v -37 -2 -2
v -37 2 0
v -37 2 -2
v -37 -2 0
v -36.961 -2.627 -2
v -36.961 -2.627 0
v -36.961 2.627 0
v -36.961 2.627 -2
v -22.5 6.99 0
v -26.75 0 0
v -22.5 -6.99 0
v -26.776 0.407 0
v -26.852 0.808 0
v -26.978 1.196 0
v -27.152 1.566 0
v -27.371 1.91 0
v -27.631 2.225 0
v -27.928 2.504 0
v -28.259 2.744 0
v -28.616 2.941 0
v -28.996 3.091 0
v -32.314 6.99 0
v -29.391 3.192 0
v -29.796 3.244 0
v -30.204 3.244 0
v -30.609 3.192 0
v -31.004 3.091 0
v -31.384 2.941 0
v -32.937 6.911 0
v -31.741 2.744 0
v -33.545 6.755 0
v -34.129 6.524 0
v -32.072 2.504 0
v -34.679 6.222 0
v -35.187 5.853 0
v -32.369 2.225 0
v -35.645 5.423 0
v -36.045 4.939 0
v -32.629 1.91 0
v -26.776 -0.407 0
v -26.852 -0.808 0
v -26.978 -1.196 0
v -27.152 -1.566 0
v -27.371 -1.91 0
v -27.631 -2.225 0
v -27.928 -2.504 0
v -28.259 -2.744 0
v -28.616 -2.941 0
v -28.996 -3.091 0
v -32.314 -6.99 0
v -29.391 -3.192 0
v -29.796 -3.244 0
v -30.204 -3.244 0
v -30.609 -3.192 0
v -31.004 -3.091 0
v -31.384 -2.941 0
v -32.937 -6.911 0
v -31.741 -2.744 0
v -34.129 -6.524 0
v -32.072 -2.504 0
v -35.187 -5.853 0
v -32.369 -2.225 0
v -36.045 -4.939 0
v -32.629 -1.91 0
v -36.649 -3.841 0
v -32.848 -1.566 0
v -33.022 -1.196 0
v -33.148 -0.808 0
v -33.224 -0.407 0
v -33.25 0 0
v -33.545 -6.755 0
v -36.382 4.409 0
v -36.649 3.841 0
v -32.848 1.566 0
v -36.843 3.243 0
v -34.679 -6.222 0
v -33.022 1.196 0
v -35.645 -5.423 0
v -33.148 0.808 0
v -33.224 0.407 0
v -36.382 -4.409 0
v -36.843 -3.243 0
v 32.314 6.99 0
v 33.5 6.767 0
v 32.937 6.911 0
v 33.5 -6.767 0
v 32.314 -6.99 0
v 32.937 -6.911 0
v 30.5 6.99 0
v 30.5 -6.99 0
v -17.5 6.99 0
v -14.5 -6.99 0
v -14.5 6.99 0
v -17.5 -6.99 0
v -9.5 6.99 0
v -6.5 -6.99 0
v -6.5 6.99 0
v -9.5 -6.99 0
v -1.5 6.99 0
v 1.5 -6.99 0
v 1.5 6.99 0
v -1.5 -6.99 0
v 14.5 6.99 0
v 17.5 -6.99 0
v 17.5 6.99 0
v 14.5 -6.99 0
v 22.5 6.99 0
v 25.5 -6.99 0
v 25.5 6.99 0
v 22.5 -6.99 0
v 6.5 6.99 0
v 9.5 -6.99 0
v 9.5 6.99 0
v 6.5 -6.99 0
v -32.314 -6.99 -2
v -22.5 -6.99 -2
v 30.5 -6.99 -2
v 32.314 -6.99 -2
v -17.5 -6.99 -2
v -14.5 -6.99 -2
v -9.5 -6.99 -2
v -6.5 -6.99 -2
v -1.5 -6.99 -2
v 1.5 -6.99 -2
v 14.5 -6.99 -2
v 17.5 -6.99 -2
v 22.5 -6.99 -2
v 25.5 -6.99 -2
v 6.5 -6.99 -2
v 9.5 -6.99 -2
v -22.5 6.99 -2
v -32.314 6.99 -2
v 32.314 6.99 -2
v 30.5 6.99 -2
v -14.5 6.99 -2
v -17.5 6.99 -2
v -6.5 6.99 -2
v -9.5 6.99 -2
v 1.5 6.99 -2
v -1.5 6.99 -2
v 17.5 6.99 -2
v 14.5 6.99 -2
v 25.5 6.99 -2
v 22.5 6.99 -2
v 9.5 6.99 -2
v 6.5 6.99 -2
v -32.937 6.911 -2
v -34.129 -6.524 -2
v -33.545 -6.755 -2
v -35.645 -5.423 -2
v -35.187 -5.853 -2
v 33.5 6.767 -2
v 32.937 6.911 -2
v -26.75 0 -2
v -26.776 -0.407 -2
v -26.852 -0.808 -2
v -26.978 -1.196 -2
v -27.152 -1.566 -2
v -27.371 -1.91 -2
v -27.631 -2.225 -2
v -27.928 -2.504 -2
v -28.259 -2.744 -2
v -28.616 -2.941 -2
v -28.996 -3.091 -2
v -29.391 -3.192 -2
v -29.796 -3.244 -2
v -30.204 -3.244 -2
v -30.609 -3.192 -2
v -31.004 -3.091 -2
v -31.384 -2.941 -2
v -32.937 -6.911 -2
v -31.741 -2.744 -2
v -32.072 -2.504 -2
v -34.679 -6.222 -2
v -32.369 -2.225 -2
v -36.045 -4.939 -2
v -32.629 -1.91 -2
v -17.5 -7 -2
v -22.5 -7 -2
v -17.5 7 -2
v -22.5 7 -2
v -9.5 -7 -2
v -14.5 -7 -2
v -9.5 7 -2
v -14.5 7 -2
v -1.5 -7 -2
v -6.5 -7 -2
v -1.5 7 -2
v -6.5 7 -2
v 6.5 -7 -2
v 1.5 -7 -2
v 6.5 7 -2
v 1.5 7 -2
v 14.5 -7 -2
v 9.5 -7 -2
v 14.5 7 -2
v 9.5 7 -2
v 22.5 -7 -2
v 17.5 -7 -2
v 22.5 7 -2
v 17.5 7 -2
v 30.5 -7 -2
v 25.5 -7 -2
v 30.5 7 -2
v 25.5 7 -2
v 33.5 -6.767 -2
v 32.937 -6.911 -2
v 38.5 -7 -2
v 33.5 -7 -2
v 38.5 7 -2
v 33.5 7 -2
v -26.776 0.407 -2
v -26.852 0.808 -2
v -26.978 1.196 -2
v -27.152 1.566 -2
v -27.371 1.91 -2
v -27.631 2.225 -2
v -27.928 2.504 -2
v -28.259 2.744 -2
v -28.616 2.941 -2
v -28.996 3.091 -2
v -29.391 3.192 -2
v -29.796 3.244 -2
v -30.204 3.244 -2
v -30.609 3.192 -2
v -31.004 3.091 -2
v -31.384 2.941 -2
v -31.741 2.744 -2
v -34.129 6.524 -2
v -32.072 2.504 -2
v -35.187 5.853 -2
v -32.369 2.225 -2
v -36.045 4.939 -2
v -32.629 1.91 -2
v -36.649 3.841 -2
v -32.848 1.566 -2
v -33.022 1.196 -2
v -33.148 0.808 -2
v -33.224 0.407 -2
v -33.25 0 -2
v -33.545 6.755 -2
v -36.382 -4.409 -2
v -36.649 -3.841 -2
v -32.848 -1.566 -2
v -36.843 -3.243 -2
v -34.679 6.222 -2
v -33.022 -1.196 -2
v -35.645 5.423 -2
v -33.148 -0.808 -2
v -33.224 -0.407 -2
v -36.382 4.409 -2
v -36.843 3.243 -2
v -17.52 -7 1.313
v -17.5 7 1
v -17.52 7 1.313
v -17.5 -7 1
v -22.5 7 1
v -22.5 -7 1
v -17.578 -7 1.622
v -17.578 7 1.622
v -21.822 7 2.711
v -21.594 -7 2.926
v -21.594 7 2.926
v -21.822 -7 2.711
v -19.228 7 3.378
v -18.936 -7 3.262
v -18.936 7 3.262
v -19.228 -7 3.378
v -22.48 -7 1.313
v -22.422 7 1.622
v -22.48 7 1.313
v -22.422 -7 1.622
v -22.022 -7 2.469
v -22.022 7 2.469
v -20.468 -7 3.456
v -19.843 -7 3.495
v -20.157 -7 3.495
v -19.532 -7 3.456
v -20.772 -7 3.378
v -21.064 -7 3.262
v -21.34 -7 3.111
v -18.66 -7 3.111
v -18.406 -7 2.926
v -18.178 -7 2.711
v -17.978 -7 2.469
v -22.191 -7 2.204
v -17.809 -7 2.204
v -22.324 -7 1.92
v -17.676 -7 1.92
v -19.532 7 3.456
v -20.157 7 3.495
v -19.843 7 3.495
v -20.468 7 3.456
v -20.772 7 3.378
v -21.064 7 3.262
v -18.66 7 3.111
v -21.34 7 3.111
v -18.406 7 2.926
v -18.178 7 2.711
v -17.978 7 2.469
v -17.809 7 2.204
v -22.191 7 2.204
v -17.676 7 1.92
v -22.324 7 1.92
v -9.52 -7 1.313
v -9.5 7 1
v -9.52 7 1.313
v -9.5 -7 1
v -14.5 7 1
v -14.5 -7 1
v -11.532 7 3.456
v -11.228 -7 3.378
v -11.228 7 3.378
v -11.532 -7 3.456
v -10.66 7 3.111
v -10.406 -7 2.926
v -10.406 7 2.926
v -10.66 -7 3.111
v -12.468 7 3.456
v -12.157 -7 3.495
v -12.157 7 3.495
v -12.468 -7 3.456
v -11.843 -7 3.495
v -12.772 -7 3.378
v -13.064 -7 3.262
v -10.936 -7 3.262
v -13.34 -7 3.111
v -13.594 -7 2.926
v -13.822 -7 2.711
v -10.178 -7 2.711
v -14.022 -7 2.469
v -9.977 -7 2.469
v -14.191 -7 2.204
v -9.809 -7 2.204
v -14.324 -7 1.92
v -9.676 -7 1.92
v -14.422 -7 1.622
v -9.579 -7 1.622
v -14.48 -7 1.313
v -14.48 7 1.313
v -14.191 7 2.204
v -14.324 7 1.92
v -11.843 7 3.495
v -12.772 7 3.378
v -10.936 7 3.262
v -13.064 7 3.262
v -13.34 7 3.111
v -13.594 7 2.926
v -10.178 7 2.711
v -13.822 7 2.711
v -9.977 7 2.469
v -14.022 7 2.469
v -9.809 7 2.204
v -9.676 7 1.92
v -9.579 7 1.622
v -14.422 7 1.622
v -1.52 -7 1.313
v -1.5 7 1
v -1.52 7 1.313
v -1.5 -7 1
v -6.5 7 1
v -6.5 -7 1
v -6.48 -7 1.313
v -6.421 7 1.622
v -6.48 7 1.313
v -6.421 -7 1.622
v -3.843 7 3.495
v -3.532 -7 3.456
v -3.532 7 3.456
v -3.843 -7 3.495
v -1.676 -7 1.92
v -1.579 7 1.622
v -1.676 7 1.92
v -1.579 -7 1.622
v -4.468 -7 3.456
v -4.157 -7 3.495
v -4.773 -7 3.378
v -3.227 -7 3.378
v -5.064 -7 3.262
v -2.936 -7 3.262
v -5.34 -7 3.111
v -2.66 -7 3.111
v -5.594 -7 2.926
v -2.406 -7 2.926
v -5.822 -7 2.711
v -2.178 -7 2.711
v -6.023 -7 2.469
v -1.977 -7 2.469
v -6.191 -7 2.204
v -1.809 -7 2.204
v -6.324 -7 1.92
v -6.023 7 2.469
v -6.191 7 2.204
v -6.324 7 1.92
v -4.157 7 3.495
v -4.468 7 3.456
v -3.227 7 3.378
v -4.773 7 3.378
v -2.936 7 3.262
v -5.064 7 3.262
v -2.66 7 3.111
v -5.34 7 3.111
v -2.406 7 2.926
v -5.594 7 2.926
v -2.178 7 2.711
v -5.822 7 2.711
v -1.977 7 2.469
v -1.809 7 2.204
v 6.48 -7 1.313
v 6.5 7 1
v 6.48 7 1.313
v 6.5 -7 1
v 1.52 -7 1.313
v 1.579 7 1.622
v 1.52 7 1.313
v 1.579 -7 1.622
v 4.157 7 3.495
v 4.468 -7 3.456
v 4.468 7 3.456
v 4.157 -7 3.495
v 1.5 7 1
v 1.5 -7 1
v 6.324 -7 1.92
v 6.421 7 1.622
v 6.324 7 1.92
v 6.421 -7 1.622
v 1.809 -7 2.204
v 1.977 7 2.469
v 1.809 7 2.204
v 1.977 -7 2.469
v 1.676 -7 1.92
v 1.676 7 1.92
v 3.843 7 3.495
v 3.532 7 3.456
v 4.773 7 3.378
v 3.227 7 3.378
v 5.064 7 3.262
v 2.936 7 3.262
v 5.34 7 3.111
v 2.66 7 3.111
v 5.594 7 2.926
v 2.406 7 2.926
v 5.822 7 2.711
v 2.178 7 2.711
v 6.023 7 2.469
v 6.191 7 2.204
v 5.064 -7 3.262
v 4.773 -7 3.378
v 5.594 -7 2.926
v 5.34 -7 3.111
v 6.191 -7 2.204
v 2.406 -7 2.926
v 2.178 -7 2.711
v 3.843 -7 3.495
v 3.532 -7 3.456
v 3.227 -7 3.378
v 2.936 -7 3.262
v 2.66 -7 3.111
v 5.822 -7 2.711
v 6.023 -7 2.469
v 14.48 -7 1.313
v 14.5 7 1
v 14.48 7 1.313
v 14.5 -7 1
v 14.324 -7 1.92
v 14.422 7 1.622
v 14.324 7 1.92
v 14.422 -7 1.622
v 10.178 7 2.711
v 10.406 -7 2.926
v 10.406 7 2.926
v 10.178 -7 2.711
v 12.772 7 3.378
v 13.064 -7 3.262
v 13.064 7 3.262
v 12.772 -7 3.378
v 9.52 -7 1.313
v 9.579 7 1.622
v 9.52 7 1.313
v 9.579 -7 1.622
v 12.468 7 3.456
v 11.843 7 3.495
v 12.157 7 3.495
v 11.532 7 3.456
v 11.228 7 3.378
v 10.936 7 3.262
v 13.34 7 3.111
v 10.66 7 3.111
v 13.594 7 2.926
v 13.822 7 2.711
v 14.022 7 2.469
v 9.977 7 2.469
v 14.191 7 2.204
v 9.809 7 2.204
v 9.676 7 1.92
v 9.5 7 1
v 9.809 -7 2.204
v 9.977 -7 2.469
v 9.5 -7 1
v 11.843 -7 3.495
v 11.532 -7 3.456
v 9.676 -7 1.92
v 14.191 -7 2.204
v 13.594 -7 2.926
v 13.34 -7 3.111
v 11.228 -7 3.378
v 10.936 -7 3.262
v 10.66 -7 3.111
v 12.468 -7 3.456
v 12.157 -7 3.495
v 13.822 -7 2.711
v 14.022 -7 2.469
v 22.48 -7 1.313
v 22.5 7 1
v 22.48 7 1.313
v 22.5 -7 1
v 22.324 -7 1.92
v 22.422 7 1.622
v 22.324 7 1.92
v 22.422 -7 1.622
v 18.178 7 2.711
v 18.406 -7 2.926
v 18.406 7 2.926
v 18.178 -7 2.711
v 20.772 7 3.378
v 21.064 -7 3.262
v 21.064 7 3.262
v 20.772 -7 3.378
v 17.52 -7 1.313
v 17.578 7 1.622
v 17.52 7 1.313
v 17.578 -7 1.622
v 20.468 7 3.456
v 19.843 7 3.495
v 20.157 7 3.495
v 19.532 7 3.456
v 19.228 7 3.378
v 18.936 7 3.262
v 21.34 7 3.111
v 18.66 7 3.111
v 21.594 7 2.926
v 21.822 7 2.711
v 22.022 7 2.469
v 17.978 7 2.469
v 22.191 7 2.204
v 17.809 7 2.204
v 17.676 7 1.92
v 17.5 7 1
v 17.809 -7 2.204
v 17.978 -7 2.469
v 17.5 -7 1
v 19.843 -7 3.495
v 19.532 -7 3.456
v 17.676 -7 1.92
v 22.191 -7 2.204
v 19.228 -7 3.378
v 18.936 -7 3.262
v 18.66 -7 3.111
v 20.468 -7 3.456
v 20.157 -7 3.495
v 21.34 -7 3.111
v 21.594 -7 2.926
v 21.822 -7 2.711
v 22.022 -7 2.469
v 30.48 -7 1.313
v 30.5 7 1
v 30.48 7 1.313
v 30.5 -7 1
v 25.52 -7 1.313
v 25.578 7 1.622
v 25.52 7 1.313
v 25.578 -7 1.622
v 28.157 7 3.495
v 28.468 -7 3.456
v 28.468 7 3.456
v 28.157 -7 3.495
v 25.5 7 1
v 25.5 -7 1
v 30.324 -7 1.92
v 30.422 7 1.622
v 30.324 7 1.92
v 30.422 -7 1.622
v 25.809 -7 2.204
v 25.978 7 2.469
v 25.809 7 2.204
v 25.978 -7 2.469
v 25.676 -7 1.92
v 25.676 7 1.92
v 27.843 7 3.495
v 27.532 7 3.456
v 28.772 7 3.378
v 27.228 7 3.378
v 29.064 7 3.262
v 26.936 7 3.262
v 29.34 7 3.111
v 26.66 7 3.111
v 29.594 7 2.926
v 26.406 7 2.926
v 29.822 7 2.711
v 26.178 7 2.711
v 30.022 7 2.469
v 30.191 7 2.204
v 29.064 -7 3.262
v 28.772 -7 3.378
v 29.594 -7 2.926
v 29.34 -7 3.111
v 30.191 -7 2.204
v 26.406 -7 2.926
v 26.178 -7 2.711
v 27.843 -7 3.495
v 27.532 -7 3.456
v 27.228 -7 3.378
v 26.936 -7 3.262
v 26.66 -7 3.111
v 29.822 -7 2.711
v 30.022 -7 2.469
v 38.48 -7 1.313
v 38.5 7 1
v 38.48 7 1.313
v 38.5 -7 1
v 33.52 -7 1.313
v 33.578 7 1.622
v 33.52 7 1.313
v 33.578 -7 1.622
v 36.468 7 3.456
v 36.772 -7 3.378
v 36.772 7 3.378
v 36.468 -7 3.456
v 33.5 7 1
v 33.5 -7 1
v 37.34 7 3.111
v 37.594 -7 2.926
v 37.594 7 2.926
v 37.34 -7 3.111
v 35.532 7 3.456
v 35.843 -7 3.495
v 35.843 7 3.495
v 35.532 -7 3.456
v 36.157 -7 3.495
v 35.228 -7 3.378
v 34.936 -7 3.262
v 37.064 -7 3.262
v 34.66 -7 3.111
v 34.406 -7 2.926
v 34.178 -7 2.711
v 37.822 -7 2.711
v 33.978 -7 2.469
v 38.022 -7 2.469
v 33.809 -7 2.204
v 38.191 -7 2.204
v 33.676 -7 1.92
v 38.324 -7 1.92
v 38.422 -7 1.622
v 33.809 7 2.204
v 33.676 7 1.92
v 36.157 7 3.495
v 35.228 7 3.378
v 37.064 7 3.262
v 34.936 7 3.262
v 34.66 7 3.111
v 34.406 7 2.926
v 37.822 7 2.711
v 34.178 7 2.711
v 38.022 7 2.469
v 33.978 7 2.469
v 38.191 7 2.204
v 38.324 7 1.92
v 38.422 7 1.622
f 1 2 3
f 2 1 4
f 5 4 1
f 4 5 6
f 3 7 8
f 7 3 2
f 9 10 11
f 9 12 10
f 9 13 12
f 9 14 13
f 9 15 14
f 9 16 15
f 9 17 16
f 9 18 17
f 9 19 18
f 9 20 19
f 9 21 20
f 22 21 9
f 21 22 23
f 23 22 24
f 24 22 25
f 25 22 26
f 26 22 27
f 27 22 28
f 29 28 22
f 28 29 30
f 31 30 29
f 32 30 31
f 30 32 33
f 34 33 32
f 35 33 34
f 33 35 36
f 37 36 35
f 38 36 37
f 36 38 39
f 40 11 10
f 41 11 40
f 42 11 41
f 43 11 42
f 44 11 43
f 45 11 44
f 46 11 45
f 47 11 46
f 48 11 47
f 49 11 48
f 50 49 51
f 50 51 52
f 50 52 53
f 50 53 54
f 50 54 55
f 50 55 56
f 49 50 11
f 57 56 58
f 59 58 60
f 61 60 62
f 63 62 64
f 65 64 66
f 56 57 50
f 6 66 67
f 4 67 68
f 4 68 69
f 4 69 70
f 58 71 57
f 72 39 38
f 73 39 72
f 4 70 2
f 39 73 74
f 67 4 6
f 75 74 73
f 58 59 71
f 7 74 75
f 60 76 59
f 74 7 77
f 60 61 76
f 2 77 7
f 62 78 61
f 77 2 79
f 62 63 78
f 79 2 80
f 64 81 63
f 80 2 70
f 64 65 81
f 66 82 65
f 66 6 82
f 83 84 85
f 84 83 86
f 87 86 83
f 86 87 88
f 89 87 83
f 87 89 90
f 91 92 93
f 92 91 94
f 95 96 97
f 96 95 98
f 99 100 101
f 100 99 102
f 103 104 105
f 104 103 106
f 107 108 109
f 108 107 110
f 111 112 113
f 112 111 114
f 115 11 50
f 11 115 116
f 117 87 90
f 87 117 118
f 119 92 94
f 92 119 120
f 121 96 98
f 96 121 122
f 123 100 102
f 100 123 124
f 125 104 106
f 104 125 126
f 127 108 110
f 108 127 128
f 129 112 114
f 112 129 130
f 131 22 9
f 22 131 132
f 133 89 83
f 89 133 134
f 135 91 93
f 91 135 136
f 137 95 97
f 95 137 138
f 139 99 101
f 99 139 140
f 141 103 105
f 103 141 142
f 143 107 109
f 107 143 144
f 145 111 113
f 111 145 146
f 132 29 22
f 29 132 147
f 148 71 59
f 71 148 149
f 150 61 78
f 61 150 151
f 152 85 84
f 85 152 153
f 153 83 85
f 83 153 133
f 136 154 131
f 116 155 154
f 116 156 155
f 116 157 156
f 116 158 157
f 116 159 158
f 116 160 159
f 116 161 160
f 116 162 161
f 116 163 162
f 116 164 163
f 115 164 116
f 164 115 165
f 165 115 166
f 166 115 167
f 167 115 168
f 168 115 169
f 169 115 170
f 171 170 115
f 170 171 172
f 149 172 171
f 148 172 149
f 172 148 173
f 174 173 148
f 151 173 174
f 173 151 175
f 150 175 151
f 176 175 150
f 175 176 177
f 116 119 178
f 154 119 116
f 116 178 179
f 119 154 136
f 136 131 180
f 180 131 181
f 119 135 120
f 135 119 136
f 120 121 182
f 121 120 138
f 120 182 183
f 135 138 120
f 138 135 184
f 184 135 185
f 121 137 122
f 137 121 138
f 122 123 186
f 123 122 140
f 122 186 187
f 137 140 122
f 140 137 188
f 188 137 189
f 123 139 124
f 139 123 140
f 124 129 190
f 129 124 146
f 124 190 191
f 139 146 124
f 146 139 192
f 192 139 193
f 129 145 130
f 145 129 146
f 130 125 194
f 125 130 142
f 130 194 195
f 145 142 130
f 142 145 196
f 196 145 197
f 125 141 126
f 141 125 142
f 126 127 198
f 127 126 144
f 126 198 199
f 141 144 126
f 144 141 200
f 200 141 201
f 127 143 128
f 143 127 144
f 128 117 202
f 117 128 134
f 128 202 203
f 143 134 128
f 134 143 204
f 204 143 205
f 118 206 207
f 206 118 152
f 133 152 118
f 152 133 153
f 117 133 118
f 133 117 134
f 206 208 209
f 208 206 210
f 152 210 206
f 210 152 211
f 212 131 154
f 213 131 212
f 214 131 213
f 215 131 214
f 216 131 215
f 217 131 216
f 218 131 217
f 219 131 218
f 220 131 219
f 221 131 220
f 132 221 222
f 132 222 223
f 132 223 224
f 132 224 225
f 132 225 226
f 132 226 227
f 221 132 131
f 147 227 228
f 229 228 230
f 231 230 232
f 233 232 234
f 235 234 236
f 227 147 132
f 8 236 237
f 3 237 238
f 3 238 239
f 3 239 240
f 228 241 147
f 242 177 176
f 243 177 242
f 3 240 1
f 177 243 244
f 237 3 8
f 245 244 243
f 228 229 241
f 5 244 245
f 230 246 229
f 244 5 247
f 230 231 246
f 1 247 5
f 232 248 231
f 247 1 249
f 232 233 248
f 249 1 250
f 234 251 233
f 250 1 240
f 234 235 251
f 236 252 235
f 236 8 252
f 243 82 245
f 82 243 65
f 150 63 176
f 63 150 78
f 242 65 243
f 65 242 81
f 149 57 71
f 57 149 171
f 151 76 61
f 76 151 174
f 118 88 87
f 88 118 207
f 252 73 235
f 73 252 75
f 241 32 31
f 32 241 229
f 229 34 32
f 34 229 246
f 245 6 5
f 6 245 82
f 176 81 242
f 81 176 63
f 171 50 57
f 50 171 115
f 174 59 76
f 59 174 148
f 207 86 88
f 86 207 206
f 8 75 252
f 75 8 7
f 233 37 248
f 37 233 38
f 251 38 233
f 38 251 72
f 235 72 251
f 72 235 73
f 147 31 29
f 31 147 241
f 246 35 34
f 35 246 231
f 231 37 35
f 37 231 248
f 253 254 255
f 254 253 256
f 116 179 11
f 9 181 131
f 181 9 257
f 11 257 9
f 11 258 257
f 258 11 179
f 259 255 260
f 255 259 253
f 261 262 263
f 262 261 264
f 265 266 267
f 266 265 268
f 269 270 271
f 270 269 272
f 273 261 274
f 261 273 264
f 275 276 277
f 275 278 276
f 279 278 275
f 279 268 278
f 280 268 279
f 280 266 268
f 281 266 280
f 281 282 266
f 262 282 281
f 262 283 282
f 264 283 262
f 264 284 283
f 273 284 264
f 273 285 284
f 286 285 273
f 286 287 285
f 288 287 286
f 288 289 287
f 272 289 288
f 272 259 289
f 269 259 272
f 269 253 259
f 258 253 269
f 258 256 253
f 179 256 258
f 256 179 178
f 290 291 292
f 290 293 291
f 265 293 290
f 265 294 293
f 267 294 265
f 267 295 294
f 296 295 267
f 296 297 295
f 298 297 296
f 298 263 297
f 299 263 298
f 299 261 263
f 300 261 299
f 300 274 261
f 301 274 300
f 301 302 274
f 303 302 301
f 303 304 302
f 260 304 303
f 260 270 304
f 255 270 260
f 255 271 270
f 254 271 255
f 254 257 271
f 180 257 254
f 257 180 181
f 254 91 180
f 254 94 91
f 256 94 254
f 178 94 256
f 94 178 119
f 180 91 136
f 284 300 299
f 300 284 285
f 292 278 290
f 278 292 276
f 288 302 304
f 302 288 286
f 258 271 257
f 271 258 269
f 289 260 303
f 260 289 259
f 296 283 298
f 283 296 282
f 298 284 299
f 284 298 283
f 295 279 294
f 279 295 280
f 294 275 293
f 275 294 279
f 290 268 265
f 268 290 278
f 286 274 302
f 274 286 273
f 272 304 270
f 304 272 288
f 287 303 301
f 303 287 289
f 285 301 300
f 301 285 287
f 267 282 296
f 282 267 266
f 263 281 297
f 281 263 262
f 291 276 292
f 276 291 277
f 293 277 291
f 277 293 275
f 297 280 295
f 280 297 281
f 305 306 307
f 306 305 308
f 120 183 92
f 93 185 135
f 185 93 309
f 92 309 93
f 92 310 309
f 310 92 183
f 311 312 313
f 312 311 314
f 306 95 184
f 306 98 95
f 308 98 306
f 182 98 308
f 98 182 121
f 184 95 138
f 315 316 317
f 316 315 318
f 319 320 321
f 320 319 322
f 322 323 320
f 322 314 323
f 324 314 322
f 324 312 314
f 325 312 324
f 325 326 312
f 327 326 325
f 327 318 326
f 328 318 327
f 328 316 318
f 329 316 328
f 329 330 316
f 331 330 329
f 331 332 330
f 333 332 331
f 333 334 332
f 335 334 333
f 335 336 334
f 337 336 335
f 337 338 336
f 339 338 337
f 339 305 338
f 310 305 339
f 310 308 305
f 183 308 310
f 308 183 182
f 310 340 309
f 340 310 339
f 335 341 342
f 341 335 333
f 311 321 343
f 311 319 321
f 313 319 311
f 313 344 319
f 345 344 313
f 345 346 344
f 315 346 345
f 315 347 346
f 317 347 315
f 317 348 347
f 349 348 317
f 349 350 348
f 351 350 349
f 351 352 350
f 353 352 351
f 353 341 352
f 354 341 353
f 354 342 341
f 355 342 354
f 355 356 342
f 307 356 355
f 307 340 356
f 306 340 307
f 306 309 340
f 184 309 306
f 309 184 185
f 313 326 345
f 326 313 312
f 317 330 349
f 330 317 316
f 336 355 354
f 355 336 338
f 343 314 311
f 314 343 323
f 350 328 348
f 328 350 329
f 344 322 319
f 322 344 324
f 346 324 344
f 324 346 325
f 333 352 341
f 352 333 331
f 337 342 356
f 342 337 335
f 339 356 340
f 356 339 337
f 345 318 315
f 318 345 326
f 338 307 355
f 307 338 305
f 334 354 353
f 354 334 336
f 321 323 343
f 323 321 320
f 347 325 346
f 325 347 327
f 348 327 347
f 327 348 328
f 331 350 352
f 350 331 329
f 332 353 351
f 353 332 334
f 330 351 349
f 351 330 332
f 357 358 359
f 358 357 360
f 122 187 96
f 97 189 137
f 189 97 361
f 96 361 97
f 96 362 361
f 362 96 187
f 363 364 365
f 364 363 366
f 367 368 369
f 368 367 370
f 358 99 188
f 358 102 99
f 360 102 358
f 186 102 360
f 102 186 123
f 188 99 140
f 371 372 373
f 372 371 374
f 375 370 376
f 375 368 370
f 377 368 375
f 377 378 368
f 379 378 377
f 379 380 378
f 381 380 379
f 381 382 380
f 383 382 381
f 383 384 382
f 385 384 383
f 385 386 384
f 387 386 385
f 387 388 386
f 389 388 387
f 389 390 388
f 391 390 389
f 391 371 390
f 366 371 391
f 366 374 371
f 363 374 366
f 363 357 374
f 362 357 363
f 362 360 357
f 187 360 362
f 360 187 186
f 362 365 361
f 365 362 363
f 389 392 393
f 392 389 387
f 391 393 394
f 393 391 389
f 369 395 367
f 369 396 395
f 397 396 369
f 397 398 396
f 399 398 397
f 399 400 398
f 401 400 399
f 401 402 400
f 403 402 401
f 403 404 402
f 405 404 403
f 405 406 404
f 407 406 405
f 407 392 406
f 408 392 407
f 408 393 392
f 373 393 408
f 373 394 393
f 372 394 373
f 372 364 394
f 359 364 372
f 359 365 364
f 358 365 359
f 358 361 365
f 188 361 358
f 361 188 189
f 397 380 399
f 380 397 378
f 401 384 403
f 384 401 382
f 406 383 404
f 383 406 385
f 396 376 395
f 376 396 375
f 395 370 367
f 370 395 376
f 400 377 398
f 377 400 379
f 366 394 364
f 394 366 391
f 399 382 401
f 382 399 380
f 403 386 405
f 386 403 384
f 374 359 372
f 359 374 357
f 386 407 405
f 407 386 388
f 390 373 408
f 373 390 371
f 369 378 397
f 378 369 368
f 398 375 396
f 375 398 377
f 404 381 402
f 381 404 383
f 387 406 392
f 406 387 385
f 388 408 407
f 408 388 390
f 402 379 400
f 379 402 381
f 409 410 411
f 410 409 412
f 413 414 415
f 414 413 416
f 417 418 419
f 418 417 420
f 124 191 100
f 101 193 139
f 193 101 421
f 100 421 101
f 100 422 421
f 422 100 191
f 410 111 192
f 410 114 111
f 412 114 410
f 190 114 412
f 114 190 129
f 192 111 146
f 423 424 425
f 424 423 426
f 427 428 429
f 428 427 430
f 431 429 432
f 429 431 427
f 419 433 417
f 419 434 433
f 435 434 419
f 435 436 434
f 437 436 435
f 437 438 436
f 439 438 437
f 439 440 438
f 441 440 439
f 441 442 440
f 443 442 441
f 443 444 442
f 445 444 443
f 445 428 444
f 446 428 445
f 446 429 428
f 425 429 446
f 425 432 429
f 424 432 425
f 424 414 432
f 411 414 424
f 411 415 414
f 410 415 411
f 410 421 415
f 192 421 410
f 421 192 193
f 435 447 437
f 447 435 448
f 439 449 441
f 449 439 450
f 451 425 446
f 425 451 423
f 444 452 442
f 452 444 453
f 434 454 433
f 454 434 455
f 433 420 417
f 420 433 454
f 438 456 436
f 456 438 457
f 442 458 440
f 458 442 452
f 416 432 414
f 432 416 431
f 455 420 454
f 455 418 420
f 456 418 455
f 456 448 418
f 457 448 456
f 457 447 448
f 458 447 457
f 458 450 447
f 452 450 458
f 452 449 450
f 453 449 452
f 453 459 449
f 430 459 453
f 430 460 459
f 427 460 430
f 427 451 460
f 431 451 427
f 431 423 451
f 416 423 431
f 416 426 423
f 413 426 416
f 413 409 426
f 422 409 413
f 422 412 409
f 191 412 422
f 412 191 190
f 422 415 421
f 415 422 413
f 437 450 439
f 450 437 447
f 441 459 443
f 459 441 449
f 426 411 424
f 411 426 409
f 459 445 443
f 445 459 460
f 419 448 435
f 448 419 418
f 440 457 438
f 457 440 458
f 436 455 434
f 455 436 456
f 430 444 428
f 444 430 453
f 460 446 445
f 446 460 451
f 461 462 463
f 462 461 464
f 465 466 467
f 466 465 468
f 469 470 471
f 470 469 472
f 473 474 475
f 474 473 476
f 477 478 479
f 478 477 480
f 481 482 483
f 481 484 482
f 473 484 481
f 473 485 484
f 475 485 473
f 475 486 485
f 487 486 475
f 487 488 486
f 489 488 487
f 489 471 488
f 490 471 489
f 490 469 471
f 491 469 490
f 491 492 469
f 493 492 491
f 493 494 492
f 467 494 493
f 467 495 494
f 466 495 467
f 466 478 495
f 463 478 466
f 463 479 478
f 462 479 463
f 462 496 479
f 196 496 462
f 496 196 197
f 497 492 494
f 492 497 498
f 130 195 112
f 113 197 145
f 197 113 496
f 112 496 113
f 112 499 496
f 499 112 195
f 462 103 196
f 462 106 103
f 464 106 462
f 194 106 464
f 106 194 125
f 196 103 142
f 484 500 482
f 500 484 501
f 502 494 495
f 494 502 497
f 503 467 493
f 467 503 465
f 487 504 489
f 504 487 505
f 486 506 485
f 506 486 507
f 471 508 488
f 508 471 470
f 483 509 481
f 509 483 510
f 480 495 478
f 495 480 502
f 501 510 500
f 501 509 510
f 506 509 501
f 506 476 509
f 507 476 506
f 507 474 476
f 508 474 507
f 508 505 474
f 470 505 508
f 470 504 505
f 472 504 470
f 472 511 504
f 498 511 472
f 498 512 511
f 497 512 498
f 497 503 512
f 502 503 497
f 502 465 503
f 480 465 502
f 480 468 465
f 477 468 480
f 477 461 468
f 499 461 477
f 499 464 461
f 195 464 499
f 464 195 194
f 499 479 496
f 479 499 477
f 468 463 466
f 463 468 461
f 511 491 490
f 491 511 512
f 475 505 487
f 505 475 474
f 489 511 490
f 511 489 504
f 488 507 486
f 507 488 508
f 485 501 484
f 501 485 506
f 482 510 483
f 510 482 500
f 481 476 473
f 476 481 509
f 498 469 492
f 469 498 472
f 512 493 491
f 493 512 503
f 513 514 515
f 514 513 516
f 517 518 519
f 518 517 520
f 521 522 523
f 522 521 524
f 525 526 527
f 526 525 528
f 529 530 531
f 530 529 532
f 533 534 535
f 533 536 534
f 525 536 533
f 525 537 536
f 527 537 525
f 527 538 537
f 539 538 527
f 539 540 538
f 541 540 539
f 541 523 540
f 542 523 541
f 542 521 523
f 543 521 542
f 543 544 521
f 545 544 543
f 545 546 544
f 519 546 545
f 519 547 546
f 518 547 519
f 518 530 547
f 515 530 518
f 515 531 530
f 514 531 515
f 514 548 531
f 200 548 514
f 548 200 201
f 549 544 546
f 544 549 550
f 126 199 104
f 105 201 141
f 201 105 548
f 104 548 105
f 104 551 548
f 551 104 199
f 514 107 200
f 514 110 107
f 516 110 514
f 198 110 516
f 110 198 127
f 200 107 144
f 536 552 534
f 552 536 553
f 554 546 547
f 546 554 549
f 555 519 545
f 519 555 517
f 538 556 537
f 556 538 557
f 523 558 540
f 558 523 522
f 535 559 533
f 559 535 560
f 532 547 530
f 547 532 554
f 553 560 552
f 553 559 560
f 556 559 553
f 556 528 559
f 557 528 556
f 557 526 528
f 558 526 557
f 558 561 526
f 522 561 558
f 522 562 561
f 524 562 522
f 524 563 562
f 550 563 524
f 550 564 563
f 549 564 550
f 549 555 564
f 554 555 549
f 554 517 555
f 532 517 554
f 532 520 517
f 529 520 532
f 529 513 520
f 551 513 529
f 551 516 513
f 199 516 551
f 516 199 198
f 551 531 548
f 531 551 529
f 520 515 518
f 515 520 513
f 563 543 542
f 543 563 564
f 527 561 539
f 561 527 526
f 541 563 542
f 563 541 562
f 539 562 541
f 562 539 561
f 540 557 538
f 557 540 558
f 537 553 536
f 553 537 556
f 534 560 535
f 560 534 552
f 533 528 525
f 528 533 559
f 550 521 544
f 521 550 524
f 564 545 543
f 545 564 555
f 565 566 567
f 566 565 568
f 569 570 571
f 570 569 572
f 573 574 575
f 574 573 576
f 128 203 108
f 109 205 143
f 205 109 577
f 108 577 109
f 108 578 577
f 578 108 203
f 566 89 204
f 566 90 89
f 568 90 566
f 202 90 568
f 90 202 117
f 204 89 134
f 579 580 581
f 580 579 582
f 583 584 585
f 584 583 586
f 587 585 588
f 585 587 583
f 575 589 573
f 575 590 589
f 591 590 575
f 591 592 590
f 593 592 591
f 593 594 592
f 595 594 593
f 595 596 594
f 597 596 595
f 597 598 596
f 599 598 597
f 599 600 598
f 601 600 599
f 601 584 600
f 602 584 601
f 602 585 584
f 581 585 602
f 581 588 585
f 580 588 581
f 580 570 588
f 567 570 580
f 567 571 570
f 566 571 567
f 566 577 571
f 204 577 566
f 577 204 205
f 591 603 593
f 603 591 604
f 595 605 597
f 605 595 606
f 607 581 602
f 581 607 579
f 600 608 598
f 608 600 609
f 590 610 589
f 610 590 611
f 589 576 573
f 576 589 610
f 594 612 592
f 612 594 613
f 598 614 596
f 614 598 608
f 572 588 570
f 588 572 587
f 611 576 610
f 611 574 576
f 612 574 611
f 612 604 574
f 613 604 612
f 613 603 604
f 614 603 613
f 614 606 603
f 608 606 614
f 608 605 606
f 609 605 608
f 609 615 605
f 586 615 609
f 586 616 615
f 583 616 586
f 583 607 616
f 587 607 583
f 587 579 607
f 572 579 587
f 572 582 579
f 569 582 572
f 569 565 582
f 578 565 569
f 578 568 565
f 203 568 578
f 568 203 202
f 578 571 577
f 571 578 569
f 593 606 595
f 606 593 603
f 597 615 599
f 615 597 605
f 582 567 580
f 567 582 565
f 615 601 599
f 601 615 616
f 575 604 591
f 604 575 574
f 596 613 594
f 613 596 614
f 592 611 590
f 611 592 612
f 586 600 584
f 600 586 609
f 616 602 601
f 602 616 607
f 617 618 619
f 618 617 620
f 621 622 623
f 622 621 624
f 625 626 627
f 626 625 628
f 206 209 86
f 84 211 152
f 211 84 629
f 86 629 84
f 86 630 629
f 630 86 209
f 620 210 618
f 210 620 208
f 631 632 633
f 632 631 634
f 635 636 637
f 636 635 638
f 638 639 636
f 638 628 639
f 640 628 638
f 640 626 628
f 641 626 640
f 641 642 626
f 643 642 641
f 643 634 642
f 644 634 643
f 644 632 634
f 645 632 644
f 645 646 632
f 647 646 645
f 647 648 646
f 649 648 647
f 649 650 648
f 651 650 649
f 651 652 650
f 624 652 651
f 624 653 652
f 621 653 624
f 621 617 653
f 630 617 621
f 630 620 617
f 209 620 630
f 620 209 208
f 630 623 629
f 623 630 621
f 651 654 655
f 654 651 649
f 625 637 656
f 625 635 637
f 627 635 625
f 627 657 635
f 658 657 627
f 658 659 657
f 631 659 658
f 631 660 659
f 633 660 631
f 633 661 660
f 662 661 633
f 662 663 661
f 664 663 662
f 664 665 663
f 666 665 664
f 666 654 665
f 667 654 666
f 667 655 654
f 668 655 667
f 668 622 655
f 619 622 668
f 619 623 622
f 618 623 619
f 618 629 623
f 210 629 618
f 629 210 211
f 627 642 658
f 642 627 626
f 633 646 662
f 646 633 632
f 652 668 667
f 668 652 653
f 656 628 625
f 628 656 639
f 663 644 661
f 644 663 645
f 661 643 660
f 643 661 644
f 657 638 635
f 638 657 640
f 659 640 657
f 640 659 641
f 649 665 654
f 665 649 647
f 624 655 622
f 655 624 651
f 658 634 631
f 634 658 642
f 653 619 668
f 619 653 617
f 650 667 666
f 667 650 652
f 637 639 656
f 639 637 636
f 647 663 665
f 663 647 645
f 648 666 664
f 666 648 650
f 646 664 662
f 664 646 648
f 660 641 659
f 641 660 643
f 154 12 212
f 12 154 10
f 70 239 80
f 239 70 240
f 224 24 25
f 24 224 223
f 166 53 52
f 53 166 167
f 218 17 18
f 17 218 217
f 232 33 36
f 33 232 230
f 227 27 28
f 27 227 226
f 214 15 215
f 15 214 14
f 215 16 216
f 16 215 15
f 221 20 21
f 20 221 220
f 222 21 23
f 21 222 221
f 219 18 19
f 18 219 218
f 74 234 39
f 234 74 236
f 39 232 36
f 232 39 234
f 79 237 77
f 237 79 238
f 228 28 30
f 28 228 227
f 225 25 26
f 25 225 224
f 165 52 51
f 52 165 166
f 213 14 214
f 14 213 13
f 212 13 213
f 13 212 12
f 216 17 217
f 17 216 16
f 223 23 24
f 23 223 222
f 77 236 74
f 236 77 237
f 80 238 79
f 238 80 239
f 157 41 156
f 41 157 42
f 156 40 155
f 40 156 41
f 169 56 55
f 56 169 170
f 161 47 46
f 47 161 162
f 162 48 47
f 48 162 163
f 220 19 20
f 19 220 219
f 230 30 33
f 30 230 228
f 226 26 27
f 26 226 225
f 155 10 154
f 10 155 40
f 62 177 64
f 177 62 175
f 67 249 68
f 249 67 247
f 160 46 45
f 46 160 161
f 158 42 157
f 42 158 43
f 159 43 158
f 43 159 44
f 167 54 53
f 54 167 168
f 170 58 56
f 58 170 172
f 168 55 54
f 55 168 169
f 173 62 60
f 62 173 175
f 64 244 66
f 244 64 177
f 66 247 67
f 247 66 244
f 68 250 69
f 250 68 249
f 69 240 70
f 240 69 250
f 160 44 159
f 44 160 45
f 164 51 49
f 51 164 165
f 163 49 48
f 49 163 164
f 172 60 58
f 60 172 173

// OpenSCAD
$fn = 50;


difference() {
	union() {
		translate(v = [0, 0, -2]) {
			hull() {
				translate(v = [-32.0000000000, 2.0000000000, 0]) {
					cylinder(h = 2, r = 5);
				}
				translate(v = [32.0000000000, 2.0000000000, 0]) {
					cylinder(h = 2, r = 5);
				}
				translate(v = [-32.0000000000, -2.0000000000, 0]) {
					cylinder(h = 2, r = 5);
				}
				translate(v = [32.0000000000, -2.0000000000, 0]) {
					cylinder(h = 2, r = 5);
				}
			}
		}
		translate(v = [-20.0000000000, 7.0000000000, -1.5000000000]) {
			rotate(a = [90, 0, 0]) {
				hull() {
					translate(v = [-0.0000000000, 2.5000000000, 0]) {
						cylinder(h = 14, r = 2.5000000000);
					}
					translate(v = [0.0000000000, 2.5000000000, 0]) {
						cylinder(h = 14, r = 2.5000000000);
					}
					translate(v = [-0.0000000000, -2.5000000000, 0]) {
						cylinder(h = 14, r = 2.5000000000);
					}
					translate(v = [0.0000000000, -2.5000000000, 0]) {
						cylinder(h = 14, r = 2.5000000000);
					}
				}
			}
		}
		translate(v = [-12.0000000000, 7.0000000000, -1.5000000000]) {
			rotate(a = [90, 0, 0]) {
				hull() {
					translate(v = [-0.0000000000, 2.5000000000, 0]) {
						cylinder(h = 14, r = 2.5000000000);
					}
					translate(v = [0.0000000000, 2.5000000000, 0]) {
						cylinder(h = 14, r = 2.5000000000);
					}
					translate(v = [-0.0000000000, -2.5000000000, 0]) {
						cylinder(h = 14, r = 2.5000000000);
					}
					translate(v = [0.0000000000, -2.5000000000, 0]) {
						cylinder(h = 14, r = 2.5000000000);
					}
				}
			}
		}
		translate(v = [-4.0000000000, 7.0000000000, -1.5000000000]) {
			rotate(a = [90, 0, 0]) {
				hull() {
					translate(v = [-0.0000000000, 2.5000000000, 0]) {
						cylinder(h = 14, r = 2.5000000000);
					}
					translate(v = [0.0000000000, 2.5000000000, 0]) {
						cylinder(h = 14, r = 2.5000000000);
					}
					translate(v = [-0.0000000000, -2.5000000000, 0]) {
						cylinder(h = 14, r = 2.5000000000);
					}
					translate(v = [0.0000000000, -2.5000000000, 0]) {
						cylinder(h = 14, r = 2.5000000000);
					}
				}
			}
		}
		translate(v = [4.0000000000, 7.0000000000, -1.5000000000]) {
			rotate(a = [90, 0, 0]) {
				hull() {
					translate(v = [-0.0000000000, 2.5000000000, 0]) {
						cylinder(h = 14, r = 2.5000000000);
					}
					translate(v = [0.0000000000, 2.5000000000, 0]) {
						cylinder(h = 14, r = 2.5000000000);
					}
					translate(v = [-0.0000000000, -2.5000000000, 0]) {
						cylinder(h = 14, r = 2.5000000000);
					}
					translate(v = [0.0000000000, -2.5000000000, 0]) {
						cylinder(h = 14, r = 2.5000000000);
					}
				}
			}
		}
		translate(v = [12.0000000000, 7.0000000000, -1.5000000000]) {
			rotate(a = [90, 0, 0]) {
				hull() {
					translate(v = [-0.0000000000, 2.5000000000, 0]) {
						cylinder(h = 14, r = 2.5000000000);
					}
					translate(v = [0.0000000000, 2.5000000000, 0]) {
						cylinder(h = 14, r = 2.5000000000);
					}
					translate(v = [-0.0000000000, -2.5000000000, 0]) {
						cylinder(h = 14, r = 2.5000000000);
					}
					translate(v = [0.0000000000, -2.5000000000, 0]) {
						cylinder(h = 14, r = 2.5000000000);
					}
				}
			}
		}
		translate(v = [20.0000000000, 7.0000000000, -1.5000000000]) {
			rotate(a = [90, 0, 0]) {
				hull() {
					translate(v = [-0.0000000000, 2.5000000000, 0]) {
						cylinder(h = 14, r = 2.5000000000);
					}
					translate(v = [0.0000000000, 2.5000000000, 0]) {
						cylinder(h = 14, r = 2.5000000000);
					}
					translate(v = [-0.0000000000, -2.5000000000, 0]) {
						cylinder(h = 14, r = 2.5000000000);
					}
					translate(v = [0.0000000000, -2.5000000000, 0]) {
						cylinder(h = 14, r = 2.5000000000);
					}
				}
			}
		}
		translate(v = [28.0000000000, 7.0000000000, -1.5000000000]) {
			rotate(a = [90, 0, 0]) {
				hull() {
					translate(v = [-0.0000000000, 2.5000000000, 0]) {
						cylinder(h = 14, r = 2.5000000000);
					}
					translate(v = [0.0000000000, 2.5000000000, 0]) {
						cylinder(h = 14, r = 2.5000000000);
					}
					translate(v = [-0.0000000000, -2.5000000000, 0]) {
						cylinder(h = 14, r = 2.5000000000);
					}
					translate(v = [0.0000000000, -2.5000000000, 0]) {
						cylinder(h = 14, r = 2.5000000000);
					}
				}
			}
		}
		translate(v = [36.0000000000, 7.0000000000, -1.5000000000]) {
			rotate(a = [90, 0, 0]) {
				hull() {
					translate(v = [-0.0000000000, 2.5000000000, 0]) {
						cylinder(h = 14, r = 2.5000000000);
					}
					translate(v = [0.0000000000, 2.5000000000, 0]) {
						cylinder(h = 14, r = 2.5000000000);
					}
					translate(v = [-0.0000000000, -2.5000000000, 0]) {
						cylinder(h = 14, r = 2.5000000000);
					}
					translate(v = [0.0000000000, -2.5000000000, 0]) {
						cylinder(h = 14, r = 2.5000000000);
					}
				}
			}
		}
	}
	union() {
		translate(v = [-250.0000000000, -250.0000000000, -502]) {
			cube(size = [500, 500, 500]);
		}
		translate(v = [-250.0000000000, -250.0000000000, -502]) {
			cube(size = [500, 500, 500]);
		}
		translate(v = [-250.0000000000, -250.0000000000, -502]) {
			cube(size = [500, 500, 500]);
		}
		translate(v = [-30.0000000000, 0.0000000000, -100.0000000000]) {
			cylinder(h = 200, r = 3.2500000000);
		}
		translate(v = [-30.0000000000, 0.0000000000, -100.0000000000]) {
			cylinder(h = 200, r = 1.8000000000);
		}
		translate(v = [-30.0000000000, 0.0000000000, -100.0000000000]) {
			cylinder(h = 200, r = 1.8000000000);
		}
		translate(v = [-30.0000000000, 0.0000000000, -100.0000000000]) {
			cylinder(h = 200, r = 1.8000000000);
		}
	}
}
